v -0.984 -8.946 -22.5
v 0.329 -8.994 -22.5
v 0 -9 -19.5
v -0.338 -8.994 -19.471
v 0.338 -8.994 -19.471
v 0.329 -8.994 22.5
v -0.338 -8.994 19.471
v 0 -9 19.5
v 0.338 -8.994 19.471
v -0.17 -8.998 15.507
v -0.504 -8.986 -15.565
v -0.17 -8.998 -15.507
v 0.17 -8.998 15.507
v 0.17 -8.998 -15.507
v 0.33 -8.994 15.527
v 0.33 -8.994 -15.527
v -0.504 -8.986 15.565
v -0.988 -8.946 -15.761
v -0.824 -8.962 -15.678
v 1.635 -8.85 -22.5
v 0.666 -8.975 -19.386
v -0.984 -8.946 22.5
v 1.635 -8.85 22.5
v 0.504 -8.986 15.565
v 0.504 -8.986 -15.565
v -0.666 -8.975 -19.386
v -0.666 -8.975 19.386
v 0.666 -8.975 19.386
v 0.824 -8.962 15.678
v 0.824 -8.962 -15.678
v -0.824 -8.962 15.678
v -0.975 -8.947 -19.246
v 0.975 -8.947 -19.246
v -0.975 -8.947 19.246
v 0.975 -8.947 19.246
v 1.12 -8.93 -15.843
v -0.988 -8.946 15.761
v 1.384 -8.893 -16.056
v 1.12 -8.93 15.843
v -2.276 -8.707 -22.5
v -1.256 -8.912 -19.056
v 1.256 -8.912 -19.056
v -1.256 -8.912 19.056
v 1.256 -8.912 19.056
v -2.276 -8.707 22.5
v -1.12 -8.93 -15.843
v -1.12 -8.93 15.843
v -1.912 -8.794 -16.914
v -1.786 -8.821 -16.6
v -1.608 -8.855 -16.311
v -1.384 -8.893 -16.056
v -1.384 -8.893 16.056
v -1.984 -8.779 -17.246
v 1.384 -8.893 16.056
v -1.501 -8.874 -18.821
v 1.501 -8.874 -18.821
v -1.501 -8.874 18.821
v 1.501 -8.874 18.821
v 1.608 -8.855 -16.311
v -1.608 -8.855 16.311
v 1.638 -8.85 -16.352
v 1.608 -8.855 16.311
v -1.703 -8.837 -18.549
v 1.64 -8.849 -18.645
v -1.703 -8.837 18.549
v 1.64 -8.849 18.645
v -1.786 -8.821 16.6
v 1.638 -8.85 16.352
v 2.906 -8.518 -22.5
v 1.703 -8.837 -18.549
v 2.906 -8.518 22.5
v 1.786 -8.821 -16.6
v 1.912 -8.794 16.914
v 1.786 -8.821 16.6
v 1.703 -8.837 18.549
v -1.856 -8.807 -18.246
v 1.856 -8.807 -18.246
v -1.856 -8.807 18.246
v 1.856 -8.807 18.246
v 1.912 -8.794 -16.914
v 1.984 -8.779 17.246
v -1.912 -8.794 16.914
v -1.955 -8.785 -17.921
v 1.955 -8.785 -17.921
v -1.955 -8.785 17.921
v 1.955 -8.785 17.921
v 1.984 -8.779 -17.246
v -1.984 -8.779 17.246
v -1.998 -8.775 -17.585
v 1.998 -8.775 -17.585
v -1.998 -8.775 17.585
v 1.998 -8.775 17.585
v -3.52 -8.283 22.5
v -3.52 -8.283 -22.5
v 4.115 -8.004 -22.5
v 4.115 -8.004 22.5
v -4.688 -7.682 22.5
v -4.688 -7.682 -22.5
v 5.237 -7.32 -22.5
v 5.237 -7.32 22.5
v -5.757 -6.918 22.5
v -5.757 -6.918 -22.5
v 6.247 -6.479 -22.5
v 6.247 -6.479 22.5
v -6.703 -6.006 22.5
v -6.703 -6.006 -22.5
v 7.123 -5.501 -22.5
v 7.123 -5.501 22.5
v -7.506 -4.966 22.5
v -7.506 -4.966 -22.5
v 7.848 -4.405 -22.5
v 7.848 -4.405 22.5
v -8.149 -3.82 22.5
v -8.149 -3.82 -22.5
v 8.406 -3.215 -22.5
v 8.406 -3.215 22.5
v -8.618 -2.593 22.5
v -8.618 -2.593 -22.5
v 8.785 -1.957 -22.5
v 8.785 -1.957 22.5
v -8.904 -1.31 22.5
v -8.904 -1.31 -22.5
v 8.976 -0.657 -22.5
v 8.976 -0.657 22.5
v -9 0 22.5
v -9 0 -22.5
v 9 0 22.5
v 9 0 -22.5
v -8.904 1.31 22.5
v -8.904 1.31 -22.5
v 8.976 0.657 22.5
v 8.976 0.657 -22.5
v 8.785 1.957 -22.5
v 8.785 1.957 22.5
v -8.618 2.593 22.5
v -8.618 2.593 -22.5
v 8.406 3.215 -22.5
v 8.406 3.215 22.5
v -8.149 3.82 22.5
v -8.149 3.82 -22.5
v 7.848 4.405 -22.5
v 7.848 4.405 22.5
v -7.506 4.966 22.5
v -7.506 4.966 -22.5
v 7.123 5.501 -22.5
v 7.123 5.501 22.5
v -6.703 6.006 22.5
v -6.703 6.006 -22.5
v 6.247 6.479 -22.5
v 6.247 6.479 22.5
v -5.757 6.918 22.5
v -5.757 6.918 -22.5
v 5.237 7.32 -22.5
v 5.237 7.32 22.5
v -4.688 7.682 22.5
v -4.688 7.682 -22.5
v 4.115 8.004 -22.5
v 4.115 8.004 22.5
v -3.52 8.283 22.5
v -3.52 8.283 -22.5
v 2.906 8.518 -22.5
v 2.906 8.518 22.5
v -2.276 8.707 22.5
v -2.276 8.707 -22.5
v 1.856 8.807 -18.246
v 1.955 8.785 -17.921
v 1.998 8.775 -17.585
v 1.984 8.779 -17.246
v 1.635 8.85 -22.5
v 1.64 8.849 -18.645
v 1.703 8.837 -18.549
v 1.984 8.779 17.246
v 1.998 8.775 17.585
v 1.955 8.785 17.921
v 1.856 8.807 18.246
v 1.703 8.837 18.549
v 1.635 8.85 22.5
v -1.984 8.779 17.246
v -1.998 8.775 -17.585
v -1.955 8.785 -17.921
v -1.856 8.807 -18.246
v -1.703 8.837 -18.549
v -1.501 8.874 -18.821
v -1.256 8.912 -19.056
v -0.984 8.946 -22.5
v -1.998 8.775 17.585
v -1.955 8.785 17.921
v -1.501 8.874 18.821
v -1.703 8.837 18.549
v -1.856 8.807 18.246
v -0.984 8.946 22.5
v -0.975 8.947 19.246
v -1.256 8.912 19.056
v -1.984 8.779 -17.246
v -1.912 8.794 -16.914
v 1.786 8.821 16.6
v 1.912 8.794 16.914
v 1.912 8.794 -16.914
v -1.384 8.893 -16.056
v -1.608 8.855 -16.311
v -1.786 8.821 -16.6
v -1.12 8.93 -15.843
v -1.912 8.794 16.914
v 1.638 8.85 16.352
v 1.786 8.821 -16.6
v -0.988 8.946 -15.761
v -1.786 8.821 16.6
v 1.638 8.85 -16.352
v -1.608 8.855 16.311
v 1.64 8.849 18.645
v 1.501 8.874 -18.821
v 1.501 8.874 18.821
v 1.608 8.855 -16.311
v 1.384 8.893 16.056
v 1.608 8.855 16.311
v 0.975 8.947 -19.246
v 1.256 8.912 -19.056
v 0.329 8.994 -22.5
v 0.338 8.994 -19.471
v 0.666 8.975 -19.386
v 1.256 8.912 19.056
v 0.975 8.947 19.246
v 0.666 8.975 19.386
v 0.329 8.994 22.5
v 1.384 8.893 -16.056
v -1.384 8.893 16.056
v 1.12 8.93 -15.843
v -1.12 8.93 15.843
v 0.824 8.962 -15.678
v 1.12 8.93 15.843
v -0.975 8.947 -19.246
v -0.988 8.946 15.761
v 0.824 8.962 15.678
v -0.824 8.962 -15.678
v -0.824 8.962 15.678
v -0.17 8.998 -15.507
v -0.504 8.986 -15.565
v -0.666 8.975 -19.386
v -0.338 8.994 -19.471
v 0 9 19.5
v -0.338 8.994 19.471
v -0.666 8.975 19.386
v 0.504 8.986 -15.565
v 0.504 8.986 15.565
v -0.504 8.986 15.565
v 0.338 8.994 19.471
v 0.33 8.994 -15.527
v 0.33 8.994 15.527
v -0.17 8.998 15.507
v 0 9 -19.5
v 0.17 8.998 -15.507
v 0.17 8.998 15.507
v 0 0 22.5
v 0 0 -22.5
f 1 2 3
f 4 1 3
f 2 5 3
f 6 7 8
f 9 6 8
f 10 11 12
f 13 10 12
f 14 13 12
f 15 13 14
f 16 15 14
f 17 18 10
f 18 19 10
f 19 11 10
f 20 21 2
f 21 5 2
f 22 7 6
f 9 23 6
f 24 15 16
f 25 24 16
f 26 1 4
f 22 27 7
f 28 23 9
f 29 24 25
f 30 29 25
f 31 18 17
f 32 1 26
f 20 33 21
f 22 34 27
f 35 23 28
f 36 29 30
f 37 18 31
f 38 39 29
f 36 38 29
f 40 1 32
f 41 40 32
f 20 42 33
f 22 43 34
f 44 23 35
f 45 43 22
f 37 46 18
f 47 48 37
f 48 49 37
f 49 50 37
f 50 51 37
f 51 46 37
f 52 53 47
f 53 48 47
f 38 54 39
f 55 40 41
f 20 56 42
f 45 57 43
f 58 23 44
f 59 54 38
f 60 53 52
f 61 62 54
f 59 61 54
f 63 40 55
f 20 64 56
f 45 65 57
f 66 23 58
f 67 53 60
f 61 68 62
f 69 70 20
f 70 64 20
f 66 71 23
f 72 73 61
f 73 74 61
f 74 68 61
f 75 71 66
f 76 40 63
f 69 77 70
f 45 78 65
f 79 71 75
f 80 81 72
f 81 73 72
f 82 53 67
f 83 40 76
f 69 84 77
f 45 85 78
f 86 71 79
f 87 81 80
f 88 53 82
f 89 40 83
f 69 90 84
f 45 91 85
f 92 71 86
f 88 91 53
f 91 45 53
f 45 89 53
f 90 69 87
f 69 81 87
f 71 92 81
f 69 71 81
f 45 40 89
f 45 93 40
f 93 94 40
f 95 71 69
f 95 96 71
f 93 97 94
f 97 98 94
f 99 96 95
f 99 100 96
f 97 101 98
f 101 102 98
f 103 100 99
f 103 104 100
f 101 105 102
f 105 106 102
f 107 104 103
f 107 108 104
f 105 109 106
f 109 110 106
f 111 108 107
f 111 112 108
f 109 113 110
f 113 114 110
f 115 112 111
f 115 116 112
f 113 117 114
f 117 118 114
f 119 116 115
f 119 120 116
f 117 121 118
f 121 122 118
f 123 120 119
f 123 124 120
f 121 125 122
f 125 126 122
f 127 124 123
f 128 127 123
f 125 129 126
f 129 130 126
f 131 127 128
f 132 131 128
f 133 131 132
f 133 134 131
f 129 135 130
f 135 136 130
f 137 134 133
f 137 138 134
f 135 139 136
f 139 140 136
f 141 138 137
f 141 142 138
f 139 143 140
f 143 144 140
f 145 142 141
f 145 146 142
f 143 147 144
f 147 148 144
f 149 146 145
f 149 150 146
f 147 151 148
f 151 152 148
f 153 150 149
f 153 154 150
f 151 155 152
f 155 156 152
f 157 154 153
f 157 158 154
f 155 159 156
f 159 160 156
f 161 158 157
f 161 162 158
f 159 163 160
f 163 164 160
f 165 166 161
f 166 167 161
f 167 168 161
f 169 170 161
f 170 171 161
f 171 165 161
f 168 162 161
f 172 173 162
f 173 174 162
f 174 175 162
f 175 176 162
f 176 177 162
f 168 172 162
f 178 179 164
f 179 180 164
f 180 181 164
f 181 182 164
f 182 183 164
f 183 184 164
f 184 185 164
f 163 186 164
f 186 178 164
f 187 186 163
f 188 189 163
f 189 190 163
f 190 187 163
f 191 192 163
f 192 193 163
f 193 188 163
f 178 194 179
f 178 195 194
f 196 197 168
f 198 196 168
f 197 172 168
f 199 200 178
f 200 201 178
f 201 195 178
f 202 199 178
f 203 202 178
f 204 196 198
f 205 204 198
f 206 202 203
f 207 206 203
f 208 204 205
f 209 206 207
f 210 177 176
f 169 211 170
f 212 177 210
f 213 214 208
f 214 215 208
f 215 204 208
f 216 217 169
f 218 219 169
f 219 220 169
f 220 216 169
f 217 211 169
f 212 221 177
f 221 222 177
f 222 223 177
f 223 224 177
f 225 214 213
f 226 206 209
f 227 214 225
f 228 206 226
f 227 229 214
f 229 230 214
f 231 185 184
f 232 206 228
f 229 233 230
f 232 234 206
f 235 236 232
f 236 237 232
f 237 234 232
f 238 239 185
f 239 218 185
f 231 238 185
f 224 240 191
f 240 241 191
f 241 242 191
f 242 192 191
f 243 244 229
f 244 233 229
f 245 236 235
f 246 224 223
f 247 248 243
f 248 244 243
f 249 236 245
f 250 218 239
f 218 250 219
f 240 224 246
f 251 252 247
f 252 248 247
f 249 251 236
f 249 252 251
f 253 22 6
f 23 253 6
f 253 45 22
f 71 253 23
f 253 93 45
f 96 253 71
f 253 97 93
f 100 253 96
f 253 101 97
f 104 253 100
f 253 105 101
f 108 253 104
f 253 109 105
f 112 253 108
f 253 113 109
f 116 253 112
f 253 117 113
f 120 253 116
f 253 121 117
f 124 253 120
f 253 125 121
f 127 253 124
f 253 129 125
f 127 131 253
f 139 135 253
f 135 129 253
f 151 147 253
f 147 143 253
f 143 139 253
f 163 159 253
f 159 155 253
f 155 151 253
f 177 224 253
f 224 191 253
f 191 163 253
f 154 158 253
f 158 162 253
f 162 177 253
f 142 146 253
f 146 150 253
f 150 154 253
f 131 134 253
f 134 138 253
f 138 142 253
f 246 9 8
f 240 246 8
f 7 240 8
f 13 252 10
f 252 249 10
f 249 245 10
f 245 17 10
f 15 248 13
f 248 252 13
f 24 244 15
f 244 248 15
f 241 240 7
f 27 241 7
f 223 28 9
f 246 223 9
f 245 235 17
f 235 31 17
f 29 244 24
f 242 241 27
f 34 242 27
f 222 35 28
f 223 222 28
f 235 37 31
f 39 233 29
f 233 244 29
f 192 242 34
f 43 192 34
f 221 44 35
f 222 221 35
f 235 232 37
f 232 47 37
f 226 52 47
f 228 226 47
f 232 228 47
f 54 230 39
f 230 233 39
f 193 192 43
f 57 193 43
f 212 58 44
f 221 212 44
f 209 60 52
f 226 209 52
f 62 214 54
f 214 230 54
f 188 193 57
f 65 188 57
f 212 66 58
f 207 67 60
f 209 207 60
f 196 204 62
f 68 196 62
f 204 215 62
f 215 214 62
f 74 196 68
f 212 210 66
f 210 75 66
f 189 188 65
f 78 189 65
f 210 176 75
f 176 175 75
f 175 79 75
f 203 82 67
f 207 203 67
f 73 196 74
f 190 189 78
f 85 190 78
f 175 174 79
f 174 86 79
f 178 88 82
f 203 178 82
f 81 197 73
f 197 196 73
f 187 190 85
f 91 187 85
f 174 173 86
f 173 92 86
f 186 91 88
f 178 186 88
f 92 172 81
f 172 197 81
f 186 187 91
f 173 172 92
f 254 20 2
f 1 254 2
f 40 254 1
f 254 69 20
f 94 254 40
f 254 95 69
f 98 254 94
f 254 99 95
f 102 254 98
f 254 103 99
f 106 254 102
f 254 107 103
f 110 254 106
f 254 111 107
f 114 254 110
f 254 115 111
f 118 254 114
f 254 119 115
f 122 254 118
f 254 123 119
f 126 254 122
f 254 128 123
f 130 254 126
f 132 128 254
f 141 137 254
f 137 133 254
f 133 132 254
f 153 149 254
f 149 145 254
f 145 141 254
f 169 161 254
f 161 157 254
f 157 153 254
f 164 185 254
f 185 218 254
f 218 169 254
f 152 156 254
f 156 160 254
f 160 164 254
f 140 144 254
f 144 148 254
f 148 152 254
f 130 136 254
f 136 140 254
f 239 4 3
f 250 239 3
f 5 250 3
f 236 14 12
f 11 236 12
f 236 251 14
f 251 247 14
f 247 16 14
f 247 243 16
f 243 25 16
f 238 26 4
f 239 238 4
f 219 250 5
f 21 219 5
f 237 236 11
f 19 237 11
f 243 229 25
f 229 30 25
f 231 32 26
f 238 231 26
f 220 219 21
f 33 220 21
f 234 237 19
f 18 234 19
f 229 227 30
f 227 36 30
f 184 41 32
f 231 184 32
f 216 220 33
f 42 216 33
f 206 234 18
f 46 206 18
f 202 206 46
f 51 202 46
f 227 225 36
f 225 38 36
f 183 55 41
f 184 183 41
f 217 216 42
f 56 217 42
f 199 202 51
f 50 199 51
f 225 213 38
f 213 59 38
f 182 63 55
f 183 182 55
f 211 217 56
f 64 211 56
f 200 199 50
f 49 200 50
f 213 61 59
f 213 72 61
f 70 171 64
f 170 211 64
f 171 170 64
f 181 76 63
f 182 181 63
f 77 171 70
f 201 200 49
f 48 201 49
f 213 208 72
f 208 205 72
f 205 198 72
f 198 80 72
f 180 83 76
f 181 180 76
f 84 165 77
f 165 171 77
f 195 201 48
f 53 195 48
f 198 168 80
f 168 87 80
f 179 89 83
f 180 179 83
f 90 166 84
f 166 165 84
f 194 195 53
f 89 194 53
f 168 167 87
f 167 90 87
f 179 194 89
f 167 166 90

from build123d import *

# Parameters (mm, degrees)
SKETCH1_R               = 9
BOSS_EXTRUDE1_DEPTH     = 12.5
SKETCH2_R               = 9
BOSS_EXTRUDE2_DEPTH     = 10
CUT_EXTRUDE1_DEPTH      = 26.850531909
CUT_EXTRUDE1_DEPTH_BACK = 26.850531909
SKETCH3_R               = 2


with BuildPart() as part:
    # Sketch1 → Boss-Extrude1 (new body)
    with BuildSketch(Plane.XY):
        Circle(SKETCH1_R)
    extrude(amount=BOSS_EXTRUDE1_DEPTH)

    # Sketch2 → Boss-Extrude2 (add)
    with BuildSketch(Plane.XY.offset(12.5)):
        Circle(SKETCH2_R)
    extrude(amount=BOSS_EXTRUDE2_DEPTH)

    # Sketch3 → Cut-Extrude1 (cut, two sides: drawn at the far end of the back side and taken through both)
    with BuildSketch(Plane(origin=(0, 0, 0), x_dir=(1, 0, 0), z_dir=(0, 1, 0)).offset(-CUT_EXTRUDE1_DEPTH_BACK)):
        with Locations(Location((0, -17.5, 0), (0, 0, 270))):
            Circle(SKETCH3_R)
    extrude(amount=CUT_EXTRUDE1_DEPTH + CUT_EXTRUDE1_DEPTH_BACK, mode=Mode.SUBTRACT)

    # Mirror1: part across plane


with BuildPart() as part_1:
    add(part.part)
    add(part.part.mirror(Plane.XY))


solid = part_1.part
